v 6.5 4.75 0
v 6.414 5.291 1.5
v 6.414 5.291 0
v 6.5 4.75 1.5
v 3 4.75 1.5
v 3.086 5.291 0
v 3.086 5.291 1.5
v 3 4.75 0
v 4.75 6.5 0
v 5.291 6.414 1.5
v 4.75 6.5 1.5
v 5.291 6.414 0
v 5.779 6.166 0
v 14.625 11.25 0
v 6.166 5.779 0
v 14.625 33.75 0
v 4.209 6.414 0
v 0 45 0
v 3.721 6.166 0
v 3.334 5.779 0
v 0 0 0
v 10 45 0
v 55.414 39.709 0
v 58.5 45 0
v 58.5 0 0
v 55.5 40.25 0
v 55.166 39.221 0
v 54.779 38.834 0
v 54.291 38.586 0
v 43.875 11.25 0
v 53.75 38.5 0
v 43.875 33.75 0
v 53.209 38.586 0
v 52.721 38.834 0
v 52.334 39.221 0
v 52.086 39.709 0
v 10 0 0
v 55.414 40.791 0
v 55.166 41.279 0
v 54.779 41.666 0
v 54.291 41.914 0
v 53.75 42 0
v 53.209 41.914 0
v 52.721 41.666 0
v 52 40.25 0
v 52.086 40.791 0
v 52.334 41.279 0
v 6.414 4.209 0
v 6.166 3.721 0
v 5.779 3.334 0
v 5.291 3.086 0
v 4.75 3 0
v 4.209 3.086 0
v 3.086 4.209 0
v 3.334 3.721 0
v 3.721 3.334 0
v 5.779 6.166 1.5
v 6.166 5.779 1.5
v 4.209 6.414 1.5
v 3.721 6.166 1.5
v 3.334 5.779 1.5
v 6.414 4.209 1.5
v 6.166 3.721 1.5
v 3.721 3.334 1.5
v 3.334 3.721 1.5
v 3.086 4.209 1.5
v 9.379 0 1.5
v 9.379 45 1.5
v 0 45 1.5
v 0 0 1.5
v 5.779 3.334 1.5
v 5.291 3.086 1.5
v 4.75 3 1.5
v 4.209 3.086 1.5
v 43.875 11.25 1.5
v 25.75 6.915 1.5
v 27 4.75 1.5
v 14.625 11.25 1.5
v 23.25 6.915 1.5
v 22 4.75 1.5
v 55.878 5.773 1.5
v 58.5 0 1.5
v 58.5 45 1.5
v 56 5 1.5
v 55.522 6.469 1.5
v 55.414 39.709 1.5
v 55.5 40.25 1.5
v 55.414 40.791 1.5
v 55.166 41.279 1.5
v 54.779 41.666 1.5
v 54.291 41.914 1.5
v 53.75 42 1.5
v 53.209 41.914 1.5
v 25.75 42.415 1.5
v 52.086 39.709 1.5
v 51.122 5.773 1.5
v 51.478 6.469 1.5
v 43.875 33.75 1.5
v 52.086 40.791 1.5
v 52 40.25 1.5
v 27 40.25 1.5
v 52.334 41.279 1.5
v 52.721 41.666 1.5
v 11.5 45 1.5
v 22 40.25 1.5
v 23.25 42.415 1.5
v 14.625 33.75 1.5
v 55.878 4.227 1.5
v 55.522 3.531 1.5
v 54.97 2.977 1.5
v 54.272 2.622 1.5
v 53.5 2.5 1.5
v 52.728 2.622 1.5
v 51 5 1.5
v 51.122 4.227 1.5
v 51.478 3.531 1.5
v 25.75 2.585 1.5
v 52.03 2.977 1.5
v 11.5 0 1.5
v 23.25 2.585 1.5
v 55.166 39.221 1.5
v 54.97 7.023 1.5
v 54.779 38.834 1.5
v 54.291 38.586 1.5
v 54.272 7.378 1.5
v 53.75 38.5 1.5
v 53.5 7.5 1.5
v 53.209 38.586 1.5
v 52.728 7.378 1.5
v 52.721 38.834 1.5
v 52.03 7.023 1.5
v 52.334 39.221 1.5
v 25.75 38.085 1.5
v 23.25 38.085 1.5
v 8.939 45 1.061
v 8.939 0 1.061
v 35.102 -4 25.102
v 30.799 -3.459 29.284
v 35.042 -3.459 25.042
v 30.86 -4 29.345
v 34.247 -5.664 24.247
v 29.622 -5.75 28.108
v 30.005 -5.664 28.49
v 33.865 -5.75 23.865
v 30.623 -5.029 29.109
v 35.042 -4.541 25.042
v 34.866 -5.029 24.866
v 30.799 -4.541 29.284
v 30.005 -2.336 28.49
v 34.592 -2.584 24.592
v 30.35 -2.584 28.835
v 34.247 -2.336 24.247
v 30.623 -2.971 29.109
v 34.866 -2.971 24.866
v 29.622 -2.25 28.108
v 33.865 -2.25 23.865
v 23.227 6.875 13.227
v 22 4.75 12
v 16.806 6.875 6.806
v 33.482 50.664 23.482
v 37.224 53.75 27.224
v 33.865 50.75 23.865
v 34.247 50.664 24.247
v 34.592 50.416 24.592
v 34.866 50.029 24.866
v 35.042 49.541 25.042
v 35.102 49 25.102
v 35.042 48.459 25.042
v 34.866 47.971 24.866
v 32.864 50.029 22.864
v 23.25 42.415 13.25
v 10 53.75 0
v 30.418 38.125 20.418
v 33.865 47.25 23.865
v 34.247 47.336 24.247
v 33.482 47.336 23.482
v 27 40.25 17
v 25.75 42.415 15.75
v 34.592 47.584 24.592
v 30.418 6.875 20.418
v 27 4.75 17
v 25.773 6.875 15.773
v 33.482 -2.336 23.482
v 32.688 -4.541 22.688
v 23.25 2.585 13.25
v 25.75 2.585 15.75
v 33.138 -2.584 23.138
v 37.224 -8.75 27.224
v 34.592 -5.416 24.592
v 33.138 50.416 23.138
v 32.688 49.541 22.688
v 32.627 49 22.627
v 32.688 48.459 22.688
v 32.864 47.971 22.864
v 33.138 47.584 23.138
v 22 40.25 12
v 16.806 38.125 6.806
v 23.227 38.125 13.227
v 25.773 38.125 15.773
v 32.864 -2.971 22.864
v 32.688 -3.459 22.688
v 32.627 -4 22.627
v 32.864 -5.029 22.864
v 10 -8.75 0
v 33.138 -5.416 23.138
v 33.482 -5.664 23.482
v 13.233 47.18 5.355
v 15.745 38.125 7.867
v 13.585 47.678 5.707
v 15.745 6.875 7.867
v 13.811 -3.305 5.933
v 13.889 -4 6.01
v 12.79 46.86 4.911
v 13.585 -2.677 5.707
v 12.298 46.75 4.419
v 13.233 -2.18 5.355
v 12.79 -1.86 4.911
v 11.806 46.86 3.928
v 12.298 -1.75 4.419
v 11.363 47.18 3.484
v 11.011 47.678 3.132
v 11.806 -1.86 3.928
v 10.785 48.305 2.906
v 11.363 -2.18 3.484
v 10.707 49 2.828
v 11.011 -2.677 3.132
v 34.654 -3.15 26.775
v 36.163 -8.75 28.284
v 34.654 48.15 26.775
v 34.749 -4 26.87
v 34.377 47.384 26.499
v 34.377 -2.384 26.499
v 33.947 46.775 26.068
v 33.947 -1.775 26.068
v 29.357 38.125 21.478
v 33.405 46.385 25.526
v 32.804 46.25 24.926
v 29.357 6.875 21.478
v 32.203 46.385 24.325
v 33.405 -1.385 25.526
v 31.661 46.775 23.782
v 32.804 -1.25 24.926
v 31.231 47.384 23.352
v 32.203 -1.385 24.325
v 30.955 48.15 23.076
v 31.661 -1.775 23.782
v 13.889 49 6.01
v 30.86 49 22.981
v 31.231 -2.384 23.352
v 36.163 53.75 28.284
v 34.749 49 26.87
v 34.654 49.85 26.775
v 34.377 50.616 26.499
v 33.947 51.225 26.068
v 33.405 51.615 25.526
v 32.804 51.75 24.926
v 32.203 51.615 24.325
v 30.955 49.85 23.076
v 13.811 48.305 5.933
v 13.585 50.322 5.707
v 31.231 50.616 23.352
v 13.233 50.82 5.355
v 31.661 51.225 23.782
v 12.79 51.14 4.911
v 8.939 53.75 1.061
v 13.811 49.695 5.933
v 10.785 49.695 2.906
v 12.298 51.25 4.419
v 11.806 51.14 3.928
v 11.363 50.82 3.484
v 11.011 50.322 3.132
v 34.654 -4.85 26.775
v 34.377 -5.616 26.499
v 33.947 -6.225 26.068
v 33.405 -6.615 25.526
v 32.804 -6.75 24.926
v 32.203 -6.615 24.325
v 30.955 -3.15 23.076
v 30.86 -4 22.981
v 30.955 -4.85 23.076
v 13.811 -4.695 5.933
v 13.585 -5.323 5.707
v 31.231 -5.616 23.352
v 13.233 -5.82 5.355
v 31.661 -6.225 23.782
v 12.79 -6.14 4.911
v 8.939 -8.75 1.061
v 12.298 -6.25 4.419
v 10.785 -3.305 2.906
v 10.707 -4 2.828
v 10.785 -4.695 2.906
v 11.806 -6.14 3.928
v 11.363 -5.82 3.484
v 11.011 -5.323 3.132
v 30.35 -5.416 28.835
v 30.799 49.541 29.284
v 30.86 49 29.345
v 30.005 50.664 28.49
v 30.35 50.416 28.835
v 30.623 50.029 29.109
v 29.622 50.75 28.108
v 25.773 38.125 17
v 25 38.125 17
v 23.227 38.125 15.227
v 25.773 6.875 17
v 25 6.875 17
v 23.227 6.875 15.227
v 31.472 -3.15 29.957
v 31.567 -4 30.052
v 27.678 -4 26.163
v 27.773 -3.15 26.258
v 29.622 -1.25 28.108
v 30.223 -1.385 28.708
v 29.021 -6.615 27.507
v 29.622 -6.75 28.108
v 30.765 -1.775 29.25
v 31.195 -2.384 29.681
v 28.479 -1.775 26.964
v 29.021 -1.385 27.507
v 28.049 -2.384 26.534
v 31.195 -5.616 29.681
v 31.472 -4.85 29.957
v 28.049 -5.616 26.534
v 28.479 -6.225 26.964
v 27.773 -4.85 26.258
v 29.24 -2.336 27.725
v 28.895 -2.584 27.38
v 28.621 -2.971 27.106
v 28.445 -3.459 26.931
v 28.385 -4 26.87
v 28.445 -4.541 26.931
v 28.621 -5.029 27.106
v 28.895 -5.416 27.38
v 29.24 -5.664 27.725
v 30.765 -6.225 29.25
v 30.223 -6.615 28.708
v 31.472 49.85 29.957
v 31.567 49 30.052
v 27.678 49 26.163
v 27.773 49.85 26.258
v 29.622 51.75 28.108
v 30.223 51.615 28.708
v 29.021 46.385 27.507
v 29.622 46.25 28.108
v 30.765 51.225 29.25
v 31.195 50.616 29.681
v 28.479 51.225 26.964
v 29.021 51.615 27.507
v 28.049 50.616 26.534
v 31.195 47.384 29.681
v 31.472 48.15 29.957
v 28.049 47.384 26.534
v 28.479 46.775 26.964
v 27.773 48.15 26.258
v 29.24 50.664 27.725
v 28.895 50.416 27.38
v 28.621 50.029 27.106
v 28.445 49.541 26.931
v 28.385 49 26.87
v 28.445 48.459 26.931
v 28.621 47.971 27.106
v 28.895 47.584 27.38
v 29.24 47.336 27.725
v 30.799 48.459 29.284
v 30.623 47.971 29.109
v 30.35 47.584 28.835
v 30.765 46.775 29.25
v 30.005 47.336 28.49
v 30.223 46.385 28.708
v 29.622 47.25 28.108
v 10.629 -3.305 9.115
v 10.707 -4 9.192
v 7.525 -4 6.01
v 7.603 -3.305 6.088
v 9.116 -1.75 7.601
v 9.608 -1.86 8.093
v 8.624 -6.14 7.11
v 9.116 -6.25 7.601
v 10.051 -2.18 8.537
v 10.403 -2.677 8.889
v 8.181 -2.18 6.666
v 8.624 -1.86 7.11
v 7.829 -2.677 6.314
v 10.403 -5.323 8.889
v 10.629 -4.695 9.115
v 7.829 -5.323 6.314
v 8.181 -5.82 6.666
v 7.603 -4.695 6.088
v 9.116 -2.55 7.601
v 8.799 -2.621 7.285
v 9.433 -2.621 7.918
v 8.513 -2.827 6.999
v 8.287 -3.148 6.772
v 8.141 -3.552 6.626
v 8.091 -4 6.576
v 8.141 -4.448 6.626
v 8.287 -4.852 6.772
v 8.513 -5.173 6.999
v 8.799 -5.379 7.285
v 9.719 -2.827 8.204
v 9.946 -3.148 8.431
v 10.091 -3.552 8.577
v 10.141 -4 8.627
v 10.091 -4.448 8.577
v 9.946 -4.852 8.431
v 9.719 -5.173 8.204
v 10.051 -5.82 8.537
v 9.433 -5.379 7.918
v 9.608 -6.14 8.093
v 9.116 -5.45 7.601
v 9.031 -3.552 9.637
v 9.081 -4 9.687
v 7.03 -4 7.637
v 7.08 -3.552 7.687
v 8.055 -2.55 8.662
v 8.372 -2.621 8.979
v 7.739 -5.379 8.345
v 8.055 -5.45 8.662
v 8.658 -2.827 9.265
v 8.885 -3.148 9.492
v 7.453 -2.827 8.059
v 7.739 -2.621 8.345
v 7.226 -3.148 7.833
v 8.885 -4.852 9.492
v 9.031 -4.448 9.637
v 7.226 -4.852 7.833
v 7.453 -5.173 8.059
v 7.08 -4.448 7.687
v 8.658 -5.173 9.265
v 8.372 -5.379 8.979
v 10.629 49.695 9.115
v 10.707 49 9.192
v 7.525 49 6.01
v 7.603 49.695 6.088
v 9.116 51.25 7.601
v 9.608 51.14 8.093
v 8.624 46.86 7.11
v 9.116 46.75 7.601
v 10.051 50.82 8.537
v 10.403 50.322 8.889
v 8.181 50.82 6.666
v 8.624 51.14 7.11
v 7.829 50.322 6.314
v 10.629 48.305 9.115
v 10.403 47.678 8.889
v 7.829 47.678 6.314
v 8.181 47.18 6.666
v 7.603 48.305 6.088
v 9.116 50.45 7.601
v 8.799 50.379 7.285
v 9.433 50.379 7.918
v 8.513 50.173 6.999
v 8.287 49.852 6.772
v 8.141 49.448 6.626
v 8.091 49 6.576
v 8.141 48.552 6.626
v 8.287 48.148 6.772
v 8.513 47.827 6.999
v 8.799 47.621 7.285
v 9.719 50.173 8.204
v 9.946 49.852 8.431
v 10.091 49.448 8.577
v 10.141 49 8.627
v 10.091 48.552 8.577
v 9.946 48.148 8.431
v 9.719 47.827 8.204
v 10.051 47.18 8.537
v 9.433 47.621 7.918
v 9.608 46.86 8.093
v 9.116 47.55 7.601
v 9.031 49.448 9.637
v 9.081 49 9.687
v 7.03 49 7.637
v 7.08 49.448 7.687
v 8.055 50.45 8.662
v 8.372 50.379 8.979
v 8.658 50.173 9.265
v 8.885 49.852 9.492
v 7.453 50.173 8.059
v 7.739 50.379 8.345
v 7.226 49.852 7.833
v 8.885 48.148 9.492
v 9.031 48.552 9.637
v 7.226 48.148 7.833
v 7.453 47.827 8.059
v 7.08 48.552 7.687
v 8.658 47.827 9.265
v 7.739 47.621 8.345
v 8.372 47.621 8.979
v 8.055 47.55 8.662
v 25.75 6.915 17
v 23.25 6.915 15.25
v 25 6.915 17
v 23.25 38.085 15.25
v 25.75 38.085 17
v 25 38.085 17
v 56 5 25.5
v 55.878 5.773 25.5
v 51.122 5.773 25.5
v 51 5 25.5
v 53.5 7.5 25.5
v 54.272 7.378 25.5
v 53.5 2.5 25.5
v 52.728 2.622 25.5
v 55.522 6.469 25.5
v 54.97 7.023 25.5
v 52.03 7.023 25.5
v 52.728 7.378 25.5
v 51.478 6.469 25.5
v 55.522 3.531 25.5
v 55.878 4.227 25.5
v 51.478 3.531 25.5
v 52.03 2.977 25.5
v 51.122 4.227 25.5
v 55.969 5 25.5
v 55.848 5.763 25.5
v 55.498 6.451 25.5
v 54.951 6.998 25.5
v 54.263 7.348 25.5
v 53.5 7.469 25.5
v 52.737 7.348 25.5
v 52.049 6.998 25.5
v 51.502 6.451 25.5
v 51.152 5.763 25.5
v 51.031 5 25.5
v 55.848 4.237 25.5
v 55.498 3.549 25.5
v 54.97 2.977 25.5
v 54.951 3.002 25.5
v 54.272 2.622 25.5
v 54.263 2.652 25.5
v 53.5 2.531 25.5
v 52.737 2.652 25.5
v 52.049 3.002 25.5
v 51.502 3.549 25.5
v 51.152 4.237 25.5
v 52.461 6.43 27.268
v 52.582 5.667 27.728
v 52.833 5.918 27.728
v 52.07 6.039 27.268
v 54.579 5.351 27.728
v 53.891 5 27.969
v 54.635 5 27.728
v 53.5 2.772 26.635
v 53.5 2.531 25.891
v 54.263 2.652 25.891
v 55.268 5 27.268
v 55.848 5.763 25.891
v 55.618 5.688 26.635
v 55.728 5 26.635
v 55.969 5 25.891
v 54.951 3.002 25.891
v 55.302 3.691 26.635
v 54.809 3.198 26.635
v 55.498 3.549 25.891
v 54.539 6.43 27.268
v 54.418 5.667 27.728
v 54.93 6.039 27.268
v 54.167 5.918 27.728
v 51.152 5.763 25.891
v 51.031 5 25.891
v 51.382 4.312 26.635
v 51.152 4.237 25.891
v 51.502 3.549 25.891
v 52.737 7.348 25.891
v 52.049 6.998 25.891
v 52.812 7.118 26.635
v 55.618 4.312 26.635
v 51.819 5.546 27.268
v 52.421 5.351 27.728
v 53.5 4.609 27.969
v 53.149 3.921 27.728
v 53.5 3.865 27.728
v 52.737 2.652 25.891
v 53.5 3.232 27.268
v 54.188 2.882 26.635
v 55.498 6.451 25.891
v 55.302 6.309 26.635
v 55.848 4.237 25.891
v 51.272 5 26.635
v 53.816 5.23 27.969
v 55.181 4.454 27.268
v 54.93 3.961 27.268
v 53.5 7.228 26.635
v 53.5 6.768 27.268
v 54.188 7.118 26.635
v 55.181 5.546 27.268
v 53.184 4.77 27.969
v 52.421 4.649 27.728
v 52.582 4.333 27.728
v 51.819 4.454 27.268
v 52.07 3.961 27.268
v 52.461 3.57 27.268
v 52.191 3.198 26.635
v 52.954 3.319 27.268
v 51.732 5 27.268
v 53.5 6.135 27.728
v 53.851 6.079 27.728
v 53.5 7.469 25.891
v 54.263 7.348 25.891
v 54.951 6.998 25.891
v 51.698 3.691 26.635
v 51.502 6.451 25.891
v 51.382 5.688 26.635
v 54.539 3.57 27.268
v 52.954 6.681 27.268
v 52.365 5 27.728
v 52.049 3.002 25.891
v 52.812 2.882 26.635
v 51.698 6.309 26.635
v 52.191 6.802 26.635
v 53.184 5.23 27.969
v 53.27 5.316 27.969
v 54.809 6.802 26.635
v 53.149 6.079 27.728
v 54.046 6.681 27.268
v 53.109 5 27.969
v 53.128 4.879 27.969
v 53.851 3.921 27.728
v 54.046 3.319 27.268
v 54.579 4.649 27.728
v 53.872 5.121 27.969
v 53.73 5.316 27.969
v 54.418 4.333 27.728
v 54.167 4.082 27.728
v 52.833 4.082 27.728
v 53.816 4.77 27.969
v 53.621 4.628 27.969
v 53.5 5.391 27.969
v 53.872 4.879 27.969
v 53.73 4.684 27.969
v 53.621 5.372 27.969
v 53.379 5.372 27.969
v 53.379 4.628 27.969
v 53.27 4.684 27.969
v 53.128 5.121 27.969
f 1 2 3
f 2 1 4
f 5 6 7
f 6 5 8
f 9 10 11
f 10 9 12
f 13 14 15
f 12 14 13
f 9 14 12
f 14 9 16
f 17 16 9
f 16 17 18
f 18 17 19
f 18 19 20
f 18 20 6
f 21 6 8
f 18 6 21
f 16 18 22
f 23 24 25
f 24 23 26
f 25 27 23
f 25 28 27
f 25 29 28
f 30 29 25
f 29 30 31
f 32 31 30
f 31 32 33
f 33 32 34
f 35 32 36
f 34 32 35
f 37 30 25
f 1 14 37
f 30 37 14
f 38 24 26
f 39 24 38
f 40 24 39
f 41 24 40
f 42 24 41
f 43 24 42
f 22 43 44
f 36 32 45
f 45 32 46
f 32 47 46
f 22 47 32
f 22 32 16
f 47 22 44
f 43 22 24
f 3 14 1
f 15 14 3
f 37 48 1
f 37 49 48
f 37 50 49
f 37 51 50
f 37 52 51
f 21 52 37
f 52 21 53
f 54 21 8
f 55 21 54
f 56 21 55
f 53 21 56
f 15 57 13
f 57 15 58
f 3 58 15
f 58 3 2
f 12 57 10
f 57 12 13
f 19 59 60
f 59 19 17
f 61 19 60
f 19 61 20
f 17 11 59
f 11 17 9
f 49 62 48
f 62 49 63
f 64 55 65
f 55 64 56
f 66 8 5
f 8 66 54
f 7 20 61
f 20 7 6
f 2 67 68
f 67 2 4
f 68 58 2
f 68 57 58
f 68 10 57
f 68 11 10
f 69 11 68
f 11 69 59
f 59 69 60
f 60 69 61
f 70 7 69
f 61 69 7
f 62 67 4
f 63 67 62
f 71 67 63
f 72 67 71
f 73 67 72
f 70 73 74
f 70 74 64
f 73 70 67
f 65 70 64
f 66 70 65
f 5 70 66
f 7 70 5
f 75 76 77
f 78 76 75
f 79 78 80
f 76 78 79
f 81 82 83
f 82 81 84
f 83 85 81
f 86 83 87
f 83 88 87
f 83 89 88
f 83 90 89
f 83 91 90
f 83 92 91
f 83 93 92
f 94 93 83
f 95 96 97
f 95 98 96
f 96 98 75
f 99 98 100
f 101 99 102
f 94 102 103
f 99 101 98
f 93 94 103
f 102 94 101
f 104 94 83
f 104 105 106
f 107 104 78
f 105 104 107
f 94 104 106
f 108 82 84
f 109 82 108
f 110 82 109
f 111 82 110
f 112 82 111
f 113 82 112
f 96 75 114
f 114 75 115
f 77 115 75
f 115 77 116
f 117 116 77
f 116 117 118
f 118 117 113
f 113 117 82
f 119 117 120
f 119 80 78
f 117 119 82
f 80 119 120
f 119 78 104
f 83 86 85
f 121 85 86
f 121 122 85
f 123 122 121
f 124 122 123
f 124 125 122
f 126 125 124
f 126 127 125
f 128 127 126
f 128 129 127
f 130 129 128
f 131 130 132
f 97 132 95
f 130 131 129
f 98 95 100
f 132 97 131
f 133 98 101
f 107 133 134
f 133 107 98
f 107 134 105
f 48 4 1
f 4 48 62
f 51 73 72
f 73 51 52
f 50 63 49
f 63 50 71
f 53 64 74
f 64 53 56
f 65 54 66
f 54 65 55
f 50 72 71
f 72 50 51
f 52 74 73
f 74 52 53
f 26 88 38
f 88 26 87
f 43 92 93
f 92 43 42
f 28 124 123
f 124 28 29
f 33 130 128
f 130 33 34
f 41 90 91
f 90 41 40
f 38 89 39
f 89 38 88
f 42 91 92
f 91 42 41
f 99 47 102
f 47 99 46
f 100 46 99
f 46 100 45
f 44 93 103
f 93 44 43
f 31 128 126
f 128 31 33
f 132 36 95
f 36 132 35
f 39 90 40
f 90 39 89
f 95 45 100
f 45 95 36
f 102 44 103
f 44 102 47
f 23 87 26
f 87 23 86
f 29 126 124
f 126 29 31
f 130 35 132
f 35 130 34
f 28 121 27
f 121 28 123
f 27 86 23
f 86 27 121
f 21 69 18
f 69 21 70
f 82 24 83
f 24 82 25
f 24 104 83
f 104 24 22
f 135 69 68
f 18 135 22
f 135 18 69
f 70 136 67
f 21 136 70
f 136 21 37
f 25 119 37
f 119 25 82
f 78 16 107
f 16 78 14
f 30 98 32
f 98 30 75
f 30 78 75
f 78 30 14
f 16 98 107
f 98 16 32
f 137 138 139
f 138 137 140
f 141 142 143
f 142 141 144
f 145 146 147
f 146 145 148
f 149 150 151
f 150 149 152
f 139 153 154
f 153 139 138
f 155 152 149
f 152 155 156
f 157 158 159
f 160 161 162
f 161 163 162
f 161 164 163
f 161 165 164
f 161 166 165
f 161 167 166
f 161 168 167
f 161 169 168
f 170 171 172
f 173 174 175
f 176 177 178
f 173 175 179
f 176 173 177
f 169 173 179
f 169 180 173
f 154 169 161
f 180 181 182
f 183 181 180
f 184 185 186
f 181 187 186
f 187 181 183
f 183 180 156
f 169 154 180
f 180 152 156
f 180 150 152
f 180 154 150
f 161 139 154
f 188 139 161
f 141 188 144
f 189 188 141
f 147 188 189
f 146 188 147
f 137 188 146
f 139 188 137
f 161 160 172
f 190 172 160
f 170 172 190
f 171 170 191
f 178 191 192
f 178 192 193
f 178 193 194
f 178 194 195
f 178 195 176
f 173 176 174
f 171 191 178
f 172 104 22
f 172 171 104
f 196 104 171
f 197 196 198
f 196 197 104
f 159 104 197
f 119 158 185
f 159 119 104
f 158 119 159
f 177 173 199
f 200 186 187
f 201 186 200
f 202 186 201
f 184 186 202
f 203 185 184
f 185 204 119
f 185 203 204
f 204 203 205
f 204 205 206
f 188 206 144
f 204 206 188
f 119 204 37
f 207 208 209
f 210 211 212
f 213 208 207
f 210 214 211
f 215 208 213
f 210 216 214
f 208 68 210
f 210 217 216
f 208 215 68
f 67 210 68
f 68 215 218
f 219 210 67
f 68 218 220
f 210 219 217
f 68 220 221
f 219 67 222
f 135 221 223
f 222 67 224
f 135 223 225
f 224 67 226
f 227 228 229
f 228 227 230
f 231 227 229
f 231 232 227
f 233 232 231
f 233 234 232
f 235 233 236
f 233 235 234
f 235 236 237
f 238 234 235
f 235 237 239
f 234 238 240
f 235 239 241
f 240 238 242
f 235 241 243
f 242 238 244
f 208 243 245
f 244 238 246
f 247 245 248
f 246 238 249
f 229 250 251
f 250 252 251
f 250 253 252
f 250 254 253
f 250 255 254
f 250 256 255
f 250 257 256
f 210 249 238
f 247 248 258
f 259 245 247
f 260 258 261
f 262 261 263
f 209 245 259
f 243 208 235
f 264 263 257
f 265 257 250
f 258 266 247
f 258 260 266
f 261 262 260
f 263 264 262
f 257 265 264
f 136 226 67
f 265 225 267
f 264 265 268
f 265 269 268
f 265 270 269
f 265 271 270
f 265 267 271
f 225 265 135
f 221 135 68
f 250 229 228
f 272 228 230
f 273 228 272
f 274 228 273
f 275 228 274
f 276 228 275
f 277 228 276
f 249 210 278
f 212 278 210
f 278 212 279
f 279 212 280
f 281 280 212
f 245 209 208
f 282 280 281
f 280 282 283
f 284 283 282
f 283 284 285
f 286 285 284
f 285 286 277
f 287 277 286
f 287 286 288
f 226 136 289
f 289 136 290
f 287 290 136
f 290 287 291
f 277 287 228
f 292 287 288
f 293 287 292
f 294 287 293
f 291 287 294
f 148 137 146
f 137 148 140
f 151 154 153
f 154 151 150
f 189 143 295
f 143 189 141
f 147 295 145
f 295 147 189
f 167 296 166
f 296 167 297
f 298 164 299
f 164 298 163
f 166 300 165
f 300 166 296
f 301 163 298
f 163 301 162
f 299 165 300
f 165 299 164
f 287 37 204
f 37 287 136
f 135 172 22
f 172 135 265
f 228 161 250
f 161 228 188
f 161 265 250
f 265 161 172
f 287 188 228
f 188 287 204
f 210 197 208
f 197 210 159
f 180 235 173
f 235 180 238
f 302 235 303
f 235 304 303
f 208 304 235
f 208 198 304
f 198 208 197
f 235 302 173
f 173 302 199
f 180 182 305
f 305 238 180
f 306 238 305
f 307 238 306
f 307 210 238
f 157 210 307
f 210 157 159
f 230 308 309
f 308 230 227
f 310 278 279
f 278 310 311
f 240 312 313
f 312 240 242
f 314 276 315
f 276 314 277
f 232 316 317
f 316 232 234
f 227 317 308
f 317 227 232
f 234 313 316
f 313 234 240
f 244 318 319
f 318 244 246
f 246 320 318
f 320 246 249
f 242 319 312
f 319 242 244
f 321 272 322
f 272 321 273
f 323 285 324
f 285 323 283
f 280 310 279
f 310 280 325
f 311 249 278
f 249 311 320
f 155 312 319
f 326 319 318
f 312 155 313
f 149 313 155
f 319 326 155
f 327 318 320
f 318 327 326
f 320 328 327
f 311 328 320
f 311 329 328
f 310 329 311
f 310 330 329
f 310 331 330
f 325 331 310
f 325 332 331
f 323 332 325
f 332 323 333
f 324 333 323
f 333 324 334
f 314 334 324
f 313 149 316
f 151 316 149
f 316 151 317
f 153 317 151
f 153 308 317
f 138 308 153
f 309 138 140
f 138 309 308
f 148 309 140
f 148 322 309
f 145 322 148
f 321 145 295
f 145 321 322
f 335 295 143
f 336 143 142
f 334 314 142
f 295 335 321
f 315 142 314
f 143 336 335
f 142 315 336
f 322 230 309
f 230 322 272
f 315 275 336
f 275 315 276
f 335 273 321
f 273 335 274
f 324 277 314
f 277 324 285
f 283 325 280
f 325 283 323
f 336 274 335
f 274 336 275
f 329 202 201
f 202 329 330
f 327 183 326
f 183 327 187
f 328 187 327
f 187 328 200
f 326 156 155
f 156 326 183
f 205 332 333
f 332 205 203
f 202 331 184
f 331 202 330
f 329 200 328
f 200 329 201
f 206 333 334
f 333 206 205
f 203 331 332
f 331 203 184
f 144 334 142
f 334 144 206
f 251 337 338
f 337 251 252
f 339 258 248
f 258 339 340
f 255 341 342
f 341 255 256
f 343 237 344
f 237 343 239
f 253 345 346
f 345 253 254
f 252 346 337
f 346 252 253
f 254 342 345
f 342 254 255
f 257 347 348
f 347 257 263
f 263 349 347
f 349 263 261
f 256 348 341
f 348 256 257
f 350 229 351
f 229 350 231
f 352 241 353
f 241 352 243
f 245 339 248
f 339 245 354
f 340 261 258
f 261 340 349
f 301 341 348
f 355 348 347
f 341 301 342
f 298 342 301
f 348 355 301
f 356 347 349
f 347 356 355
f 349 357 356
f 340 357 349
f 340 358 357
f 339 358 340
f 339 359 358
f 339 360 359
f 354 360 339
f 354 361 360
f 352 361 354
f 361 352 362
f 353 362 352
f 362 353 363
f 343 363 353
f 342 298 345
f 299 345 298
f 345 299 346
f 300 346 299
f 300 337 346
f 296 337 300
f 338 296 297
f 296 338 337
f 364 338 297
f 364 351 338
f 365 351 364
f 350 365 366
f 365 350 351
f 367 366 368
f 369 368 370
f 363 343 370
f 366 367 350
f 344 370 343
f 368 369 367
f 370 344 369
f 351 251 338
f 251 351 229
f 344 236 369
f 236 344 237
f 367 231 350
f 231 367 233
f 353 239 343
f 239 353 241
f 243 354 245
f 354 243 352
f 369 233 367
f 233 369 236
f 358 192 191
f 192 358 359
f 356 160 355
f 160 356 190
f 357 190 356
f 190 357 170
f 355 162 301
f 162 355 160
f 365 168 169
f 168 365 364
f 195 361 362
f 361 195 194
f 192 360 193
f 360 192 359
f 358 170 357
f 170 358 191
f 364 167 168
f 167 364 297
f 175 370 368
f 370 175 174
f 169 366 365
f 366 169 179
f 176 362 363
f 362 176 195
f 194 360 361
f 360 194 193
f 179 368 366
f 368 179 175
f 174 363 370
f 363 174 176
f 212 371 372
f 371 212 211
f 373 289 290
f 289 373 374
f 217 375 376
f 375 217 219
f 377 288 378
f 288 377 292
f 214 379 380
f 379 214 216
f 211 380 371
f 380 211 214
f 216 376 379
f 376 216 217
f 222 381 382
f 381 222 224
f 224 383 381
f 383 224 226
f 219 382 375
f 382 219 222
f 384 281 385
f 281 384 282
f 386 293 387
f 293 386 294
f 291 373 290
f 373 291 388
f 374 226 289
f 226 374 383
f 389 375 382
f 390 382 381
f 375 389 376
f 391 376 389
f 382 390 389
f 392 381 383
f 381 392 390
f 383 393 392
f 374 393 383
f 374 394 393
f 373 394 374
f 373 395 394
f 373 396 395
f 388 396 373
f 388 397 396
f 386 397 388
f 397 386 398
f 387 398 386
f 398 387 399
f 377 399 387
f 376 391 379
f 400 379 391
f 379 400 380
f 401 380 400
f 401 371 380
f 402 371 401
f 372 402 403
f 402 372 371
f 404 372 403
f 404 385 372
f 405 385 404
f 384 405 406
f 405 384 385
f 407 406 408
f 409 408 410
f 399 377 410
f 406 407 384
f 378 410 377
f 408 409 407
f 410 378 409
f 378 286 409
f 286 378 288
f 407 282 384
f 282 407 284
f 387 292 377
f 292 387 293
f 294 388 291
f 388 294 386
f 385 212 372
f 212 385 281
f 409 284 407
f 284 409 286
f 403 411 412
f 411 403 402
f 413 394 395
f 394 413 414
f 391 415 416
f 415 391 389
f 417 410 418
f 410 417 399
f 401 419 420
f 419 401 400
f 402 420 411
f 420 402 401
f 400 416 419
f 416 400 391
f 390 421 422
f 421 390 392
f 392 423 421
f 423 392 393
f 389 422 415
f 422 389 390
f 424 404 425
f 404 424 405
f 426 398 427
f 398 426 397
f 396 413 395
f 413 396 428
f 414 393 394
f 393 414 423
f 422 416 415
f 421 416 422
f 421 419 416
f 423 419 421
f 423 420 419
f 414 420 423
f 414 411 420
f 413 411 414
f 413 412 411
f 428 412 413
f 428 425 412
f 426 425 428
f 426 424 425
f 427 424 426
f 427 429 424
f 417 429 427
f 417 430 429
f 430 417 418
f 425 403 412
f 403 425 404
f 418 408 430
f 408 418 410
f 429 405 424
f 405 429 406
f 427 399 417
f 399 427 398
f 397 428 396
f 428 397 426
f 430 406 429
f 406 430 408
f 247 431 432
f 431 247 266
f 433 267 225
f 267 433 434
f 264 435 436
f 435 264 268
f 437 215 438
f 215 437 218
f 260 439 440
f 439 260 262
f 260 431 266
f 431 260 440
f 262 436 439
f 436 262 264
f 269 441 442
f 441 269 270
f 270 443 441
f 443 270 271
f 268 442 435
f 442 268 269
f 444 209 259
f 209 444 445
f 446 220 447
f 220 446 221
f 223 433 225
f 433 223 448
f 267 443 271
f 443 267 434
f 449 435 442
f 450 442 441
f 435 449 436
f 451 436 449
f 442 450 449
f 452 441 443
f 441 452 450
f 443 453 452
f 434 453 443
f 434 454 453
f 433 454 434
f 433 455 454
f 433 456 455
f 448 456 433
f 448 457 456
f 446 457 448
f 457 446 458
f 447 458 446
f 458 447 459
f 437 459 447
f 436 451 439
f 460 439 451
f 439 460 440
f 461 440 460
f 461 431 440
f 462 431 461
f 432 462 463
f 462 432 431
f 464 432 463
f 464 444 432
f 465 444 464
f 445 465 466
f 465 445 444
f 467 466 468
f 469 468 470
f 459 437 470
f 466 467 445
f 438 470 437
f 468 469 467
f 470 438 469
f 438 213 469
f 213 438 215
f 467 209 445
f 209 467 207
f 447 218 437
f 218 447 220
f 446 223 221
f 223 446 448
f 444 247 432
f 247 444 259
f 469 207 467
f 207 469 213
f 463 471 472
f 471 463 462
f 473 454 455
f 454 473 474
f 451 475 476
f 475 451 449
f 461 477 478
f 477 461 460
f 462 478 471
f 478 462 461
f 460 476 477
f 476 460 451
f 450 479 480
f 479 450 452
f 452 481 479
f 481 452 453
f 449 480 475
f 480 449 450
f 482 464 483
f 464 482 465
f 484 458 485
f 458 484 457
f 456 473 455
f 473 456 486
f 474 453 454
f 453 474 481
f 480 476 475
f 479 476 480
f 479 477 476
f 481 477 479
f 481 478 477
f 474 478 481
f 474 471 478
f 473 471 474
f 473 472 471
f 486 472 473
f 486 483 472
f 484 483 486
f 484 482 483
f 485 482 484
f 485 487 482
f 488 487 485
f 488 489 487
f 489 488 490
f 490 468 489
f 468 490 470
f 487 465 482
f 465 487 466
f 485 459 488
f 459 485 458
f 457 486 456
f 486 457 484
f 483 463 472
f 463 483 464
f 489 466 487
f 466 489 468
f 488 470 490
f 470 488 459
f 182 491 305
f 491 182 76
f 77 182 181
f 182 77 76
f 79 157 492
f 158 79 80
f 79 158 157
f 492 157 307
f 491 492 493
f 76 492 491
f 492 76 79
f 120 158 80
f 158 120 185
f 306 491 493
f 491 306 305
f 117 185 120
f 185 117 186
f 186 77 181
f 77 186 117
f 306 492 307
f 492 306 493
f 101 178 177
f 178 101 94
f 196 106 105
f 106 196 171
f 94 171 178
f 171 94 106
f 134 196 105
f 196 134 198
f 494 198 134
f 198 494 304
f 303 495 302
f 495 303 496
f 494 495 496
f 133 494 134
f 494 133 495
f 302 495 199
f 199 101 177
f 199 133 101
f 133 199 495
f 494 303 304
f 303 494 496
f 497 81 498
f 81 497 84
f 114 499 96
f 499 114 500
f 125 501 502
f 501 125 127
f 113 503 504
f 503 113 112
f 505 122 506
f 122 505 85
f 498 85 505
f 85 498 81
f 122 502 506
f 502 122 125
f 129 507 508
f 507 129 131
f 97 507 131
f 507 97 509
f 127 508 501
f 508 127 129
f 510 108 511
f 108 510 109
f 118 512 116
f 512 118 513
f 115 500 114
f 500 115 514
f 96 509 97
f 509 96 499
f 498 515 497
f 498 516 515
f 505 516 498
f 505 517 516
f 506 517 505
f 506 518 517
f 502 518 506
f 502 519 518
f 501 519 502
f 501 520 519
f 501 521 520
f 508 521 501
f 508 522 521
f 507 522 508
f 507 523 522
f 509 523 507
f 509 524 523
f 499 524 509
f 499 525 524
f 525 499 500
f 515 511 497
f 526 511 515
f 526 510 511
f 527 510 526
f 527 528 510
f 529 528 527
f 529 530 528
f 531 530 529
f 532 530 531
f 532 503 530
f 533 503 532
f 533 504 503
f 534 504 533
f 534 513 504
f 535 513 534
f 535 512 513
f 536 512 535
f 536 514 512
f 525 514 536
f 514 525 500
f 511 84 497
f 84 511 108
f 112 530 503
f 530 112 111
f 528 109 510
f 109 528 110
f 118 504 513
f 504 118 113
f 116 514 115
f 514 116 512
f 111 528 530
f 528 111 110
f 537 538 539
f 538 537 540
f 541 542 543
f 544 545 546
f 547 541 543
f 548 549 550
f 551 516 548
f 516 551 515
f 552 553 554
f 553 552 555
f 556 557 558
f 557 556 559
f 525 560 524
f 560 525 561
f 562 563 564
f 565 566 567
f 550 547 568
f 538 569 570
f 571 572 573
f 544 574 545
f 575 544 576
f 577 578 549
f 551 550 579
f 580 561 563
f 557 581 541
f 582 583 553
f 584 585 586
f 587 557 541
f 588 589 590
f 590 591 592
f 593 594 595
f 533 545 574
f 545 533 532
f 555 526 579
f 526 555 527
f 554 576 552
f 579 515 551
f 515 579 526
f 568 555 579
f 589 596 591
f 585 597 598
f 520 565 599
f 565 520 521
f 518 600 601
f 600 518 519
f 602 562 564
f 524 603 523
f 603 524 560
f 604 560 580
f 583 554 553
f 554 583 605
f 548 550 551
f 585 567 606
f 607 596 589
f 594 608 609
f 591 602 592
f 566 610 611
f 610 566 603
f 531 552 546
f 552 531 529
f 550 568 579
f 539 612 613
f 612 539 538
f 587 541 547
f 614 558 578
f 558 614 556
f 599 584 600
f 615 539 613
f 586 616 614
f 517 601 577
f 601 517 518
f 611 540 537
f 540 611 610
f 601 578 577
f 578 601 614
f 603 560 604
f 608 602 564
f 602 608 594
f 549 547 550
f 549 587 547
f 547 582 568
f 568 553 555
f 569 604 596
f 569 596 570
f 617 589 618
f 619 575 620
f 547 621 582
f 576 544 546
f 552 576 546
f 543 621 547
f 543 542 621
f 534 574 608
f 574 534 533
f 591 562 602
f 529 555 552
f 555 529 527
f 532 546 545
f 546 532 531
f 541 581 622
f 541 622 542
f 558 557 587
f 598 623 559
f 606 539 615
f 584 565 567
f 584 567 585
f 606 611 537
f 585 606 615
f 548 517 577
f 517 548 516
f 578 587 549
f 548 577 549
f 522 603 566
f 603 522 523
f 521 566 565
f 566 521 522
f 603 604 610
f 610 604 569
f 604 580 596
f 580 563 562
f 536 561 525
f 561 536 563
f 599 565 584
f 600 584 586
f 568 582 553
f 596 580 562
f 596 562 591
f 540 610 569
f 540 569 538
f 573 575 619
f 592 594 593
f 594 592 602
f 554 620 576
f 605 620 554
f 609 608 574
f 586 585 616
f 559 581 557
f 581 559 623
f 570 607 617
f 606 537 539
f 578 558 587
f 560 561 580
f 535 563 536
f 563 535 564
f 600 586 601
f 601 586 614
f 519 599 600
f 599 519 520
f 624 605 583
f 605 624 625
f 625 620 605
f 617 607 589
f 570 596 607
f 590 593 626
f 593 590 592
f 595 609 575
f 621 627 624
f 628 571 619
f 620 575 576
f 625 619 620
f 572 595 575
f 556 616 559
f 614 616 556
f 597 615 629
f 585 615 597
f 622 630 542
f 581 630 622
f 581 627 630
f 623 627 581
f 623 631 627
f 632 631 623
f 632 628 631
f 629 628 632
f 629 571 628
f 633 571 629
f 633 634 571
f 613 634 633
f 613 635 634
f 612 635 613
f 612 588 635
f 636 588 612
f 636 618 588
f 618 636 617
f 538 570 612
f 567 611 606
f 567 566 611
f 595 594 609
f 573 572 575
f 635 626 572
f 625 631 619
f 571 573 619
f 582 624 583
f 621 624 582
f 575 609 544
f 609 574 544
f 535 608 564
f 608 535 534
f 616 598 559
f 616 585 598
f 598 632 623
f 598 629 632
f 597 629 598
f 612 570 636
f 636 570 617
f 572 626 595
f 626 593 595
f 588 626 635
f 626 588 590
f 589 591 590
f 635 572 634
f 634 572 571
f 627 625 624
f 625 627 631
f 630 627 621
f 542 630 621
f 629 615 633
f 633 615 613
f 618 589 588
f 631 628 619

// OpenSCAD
diam=3.5;
margin=3;
thick=1.5;
angle=45;
corner_offset=[margin+diam/2,margin+diam/2,0];
standoff_thick=1;
standoff_height=6;
$fn=20;

// Modules
module hole() cylinder(d=diam, h=thick);
module support(h=beam_height,fn=6,c=true) {
    $fn=fn;
    difference() {
        cylinder(d=support_thick,h=h);
        if(c) {
            translate([support_thick/-2,support_thick/-2,h-thick*2])
                rotate([0,-45,0])
                cube([support_thick,support_thick,thick*2]);
        }
    }
    if(!c) translate([0,0,h]) sphere(d=support_thick);
}

// Base Platform
bdist=[49,35.5,0];
bsize=[bdist[0]+margin*2+diam,bdist[1]+margin*2+diam];
difference() {
    cube([bsize[0],bsize[1],thick]);
    translate(corner_offset) {
        hole();
        translate(bdist)
            hole();
    }
    translate([bsize[0]/4,bsize[1]/4,0])
        cube([bsize[0]/2,bsize[1]/2,thick]);
}

// Converter platform
cdist=[29,53];
csize=[cdist[0]+margin*2+diam,cdist[1]+margin*2+diam];
translate([margin+diam*2,(bsize[1]-csize[1])/2,0])
rotate([0,-1*angle,0]) {
    difference() {
        cube([csize[0],csize[1],thick]);
        translate(corner_offset) {
            translate([cdist[0],0,0])
                hole();
            translate([cdist[0],cdist[1],0])
                hole();
        }
        translate([csize[0]/4,csize[1]/4,0]) {
            cube([csize[0]/2,csize[1]/2,thick]);
        }
    }
    // Standoffs
    translate(corner_offset) {
        for(j=[0:1]) {
            translate([cdist[0],cdist[1]*j,0])
            difference() {
                cylinder(d=diam+standoff_thick*2,h=standoff_height);
                cylinder(d=diam,h=standoff_height);
            }
        }
        for(i=[0:1]) {
            translate([0,cdist[1]*i,0]) {
                cylinder(d=diam+standoff_thick,h=standoff_height);
                translate([0,0,standoff_height])
                    cylinder(d=2.9,h=1.5);
            }
        }
    }
}

// Support Beams
support_thick=5;
beam_height=17;
translate([bdist[0]/2,corner_offset[1],0]) {
    support();
    translate([0,bdist[1],0])
        support();
}

translate([bsize[0]-support_thick,support_thick,0])
support(h=beam_height*1.5,fn=20,c=false);
